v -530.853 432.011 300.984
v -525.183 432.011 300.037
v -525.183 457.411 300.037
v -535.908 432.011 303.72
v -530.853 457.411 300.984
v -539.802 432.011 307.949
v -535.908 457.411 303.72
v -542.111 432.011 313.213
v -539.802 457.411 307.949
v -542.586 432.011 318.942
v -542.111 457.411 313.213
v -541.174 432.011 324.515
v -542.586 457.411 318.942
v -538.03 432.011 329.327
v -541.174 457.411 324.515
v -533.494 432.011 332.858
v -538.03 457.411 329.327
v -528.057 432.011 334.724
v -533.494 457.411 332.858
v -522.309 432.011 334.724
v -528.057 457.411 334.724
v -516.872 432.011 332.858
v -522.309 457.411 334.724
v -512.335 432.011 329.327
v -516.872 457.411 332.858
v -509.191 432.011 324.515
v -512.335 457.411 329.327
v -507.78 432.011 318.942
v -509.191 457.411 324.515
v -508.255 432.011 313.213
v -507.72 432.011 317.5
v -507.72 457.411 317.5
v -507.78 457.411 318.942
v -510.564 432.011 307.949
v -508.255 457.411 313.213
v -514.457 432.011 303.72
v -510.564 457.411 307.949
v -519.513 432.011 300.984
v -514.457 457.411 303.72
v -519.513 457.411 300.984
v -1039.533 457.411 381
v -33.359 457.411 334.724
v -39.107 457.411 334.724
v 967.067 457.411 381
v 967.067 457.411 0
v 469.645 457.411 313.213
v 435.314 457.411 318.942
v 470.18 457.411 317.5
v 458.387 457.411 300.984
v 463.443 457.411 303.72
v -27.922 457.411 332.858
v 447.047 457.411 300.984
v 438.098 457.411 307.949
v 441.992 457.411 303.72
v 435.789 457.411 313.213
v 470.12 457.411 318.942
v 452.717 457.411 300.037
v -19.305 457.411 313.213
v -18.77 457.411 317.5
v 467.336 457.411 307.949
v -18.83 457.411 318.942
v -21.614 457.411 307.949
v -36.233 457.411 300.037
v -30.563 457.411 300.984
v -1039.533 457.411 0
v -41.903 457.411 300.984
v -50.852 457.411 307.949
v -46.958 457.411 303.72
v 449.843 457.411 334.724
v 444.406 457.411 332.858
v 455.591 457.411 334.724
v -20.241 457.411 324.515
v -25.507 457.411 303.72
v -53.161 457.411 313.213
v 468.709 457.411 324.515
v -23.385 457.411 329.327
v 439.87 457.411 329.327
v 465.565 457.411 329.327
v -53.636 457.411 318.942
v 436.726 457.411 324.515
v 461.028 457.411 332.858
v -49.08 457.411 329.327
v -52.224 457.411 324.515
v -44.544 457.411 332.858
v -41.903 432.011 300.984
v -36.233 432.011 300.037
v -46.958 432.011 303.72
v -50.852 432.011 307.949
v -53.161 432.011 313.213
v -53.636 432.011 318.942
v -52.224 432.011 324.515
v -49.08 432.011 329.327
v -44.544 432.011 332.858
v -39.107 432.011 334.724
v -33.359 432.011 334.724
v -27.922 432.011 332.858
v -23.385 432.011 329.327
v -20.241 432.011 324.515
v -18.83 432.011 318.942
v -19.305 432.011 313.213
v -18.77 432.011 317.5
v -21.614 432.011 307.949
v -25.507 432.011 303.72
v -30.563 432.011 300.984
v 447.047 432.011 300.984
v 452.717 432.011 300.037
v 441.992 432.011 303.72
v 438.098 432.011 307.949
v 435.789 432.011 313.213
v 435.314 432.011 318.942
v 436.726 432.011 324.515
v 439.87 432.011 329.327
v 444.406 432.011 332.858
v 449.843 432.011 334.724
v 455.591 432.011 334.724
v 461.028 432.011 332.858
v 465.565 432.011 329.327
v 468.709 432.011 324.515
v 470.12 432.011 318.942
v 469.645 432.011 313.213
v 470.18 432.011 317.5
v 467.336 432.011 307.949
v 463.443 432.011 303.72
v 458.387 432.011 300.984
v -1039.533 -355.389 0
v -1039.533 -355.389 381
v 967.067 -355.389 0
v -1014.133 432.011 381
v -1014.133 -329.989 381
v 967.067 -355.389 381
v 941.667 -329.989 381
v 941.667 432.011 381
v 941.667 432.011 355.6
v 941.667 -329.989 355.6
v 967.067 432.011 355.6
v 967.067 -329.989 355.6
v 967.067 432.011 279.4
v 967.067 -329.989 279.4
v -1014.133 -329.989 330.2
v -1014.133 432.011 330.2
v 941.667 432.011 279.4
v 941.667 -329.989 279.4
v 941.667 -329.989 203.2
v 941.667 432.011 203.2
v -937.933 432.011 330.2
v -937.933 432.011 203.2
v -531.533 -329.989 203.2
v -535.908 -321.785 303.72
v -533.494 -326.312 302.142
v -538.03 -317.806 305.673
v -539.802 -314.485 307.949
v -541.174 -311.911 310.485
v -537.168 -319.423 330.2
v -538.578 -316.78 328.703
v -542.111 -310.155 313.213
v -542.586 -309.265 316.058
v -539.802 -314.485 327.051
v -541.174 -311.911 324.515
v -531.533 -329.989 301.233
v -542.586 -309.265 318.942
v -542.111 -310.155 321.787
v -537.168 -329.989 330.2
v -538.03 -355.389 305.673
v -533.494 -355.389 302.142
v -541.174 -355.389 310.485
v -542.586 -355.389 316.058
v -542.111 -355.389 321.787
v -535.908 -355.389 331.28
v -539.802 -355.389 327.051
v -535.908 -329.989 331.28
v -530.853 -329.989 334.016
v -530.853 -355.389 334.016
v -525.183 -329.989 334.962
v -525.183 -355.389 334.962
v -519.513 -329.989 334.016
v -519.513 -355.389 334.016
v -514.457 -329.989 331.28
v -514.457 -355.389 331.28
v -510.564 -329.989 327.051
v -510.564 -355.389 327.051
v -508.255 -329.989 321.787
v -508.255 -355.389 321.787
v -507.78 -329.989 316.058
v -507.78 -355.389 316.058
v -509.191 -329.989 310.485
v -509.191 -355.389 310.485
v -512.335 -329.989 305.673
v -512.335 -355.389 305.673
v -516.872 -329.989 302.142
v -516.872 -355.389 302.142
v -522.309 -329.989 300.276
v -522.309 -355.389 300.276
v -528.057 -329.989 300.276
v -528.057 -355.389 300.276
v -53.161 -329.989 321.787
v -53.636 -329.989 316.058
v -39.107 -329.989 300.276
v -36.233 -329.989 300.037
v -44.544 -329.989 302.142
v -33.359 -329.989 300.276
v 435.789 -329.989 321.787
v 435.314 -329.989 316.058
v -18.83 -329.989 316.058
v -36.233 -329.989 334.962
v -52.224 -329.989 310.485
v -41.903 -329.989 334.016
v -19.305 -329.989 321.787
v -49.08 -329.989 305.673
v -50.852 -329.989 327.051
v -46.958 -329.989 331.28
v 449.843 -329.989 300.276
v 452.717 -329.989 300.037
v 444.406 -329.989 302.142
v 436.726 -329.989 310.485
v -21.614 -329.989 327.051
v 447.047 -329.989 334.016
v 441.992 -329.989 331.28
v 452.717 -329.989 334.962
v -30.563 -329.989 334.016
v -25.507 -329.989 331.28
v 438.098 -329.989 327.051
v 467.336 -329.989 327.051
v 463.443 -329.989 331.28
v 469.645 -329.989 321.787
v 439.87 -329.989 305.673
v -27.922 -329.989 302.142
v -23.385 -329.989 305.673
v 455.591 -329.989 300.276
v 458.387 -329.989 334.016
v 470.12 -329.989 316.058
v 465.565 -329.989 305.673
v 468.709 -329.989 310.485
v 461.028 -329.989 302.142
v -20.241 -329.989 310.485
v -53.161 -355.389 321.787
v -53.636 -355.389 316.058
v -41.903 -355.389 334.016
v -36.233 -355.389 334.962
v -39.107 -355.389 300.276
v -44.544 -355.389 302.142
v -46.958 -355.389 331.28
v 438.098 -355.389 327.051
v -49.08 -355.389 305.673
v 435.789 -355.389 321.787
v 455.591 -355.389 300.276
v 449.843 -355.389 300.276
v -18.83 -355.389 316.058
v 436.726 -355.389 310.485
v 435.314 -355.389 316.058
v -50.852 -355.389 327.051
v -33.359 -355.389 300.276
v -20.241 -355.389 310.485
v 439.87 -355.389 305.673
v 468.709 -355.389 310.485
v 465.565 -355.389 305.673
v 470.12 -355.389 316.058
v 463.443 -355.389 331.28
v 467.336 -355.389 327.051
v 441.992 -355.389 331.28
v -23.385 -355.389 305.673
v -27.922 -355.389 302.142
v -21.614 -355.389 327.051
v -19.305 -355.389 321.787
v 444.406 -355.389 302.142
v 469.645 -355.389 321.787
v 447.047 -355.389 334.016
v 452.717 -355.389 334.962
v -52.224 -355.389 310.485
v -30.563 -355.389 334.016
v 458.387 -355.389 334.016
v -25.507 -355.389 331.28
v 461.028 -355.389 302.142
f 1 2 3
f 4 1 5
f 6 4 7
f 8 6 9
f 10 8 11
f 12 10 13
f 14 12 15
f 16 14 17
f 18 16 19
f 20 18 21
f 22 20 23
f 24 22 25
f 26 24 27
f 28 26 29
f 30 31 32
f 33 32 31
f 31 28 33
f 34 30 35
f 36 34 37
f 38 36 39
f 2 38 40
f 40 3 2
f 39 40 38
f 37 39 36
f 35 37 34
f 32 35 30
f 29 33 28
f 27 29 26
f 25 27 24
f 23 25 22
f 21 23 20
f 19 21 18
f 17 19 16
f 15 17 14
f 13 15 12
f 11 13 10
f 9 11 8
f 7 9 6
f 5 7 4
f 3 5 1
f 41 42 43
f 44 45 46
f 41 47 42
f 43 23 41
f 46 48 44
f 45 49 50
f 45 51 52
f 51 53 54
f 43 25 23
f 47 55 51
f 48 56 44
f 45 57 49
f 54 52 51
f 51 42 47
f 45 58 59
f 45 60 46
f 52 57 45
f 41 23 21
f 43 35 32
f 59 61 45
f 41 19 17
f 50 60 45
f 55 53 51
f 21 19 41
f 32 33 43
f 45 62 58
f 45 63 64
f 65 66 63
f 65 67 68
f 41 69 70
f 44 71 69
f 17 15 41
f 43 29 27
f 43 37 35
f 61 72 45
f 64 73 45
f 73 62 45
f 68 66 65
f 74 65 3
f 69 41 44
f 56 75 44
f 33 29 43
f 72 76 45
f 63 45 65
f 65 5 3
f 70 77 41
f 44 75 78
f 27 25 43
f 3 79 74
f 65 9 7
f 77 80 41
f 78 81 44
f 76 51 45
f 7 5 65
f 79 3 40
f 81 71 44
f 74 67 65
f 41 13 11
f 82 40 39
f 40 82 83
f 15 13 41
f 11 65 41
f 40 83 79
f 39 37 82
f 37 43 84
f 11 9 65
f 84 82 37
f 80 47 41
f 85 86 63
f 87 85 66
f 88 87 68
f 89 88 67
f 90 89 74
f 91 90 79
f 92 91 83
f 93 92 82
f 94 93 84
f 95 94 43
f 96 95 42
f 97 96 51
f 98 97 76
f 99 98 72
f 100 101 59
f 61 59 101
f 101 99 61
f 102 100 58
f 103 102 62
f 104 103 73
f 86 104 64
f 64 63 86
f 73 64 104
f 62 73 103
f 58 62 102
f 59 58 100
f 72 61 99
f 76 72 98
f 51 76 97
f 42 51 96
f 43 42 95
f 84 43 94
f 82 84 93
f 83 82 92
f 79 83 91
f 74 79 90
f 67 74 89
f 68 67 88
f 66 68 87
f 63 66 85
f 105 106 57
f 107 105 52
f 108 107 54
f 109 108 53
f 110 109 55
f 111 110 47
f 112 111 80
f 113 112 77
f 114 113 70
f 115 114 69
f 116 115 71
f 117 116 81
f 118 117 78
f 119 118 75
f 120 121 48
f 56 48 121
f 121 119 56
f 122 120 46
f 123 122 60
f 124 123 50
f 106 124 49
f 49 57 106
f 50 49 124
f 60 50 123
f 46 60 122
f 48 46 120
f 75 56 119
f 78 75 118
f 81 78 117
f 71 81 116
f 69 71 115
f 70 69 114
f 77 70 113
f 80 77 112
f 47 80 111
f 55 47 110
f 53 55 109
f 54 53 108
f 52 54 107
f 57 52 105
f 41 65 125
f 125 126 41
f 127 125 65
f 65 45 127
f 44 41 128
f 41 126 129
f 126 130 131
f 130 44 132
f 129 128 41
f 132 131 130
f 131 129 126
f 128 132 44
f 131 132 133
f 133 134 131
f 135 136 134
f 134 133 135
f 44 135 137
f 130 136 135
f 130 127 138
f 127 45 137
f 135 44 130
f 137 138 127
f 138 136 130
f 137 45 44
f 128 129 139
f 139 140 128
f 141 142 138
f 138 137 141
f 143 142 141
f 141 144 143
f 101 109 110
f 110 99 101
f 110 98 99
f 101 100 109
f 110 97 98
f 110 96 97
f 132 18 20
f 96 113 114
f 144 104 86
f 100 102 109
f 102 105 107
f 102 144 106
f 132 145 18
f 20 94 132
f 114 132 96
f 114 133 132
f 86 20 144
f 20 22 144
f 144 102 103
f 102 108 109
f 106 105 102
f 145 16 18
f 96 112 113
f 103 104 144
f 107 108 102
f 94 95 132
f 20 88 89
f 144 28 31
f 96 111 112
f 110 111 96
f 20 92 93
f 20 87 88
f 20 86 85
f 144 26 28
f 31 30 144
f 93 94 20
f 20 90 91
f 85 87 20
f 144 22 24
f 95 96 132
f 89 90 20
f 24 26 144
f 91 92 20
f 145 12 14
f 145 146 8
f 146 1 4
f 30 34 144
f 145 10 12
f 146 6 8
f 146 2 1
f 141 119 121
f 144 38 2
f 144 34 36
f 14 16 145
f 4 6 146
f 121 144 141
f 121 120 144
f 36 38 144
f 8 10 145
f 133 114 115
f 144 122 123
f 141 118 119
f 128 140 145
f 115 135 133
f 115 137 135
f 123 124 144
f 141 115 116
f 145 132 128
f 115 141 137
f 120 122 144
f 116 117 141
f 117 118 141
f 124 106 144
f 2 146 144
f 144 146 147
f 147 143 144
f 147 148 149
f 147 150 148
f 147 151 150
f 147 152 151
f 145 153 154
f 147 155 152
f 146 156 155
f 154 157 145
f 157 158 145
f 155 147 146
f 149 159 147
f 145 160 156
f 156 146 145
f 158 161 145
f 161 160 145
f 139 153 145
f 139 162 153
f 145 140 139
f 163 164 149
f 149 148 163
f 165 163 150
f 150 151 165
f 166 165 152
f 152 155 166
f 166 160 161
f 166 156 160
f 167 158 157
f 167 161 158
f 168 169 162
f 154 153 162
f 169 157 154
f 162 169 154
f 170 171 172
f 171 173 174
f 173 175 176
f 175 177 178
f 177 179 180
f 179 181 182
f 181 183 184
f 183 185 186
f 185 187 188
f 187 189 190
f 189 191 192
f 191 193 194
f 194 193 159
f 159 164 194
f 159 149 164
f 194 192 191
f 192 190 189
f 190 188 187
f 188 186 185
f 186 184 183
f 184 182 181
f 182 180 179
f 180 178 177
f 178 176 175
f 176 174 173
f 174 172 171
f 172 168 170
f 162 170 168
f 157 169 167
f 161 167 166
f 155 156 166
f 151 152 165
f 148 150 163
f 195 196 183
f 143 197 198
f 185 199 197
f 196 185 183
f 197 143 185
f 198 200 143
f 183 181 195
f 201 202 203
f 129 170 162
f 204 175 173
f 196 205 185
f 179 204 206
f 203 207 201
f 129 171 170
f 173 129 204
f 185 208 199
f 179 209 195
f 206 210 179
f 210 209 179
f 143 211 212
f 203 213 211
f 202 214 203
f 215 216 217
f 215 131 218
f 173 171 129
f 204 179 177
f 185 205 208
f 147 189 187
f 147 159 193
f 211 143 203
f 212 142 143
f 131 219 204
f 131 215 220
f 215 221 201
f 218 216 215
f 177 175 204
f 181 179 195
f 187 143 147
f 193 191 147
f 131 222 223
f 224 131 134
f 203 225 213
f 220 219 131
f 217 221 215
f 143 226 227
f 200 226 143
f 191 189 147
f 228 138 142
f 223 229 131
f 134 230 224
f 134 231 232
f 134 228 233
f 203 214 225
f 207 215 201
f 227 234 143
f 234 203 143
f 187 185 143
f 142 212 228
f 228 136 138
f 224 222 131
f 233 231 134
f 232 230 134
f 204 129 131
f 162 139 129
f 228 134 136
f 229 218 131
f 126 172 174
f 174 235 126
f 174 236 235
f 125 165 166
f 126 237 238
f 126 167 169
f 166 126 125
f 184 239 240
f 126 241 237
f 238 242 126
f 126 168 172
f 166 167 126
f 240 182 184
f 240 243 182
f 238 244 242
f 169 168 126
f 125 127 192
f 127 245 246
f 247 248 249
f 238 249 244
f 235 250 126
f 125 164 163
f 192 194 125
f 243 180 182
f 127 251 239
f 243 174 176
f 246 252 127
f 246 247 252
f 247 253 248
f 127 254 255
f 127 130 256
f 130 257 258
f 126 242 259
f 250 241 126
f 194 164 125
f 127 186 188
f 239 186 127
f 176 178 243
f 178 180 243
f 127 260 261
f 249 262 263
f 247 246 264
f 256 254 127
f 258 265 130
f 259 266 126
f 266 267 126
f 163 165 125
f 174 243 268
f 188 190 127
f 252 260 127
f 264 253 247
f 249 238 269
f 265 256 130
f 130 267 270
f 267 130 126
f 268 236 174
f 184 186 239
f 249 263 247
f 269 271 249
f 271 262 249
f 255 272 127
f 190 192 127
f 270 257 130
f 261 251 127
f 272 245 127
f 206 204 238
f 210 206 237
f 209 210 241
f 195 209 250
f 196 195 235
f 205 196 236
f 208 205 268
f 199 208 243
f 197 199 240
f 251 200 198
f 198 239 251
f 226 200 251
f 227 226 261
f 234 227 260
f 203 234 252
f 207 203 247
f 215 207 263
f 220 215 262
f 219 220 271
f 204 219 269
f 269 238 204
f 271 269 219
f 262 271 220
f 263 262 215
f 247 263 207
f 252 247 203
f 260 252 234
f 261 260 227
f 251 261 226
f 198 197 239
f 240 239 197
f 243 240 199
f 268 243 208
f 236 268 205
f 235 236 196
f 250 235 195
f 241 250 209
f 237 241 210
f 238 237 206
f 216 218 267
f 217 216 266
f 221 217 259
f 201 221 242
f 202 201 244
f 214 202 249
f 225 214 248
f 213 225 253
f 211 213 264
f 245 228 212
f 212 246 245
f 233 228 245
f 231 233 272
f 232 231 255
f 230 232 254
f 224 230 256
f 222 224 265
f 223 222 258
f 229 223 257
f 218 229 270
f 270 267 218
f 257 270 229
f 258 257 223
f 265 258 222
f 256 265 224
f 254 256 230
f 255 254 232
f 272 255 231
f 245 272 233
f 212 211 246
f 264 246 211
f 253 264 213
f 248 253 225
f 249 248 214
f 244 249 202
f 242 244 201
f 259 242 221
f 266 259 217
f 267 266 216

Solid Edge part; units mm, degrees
sketch "Sketch1" plane through (0, 0, 0) normal (0, 0, 1) x (1, 0, 0)
  line L0 (-1039.5328, -355.3891) -> (967.0672, -355.3891)
  line L1 (967.0672, -355.3891) -> (967.0672, 457.4109)
  line L2 (967.0672, 457.4109) -> (-1039.5328, 457.4109)
  line L3 (-1039.5328, 457.4109) -> (-1039.5328, -355.3891)
extrude "Protrusion1" add sketch "Sketch1" along normal blind 381
sketch "Sketch2" plane through (-61.6328, 25.6109, 381) normal (0, 0, 1) x (1, 0, 0)
  line L0 (-469.9, -355.6) -> (-876.3, 406.4)
  line L1 (1003.3, 406.4) -> (-876.3, 406.4)
  line L2 (1003.3, -355.6) -> (1003.3, 406.4)
  line L3 (-469.9, -355.6) -> (1003.3, -355.6)
extrude "ExtrudedCutout_1" cut sketch "Sketch2" along normal mid plane 355.6
sketch "Sketch3" plane through (-36.2328, 51.0109, 381) normal (0, 0, 1) x (1, 0, 0)
  line L0 (-495.3, -381) -> (-901.7, 381)
  line L1 (-901.7, 381) -> (-977.9, 381)
  line L2 (-977.9, 381) -> (-977.9, -381)
  line L3 (-977.9, -381) -> (-495.3, -381)
extrude "ExtrudedCutout_2" cut sketch "Sketch3" along normal mid plane 101.6
sketch "Sketch4" plane through (941.6672, 51.0109, 292.1) normal (-1, 0, 0) x (0, -1, 0)
  line L0 (-381, 63.5) -> (381, 63.5)
  line L1 (381, 63.5) -> (381, -12.7)
  line L2 (381, -12.7) -> (-381, -12.7)
  line L3 (-381, -12.7) -> (-381, 63.5)
extrude "ExtrudedCutout_3" cut sketch "Sketch4" along normal mid plane 909.4412
sketch "Sketch5" plane through (-23.5328, 432.0109, 292.1) normal (0, -1, 0) x (1, 0, 0)
  circle A0 centre (-501.65, 25.4) radius 17.4625
  circle A1 centre (-12.7, 25.4) radius 17.4625
  circle A2 centre (476.25, 25.4) radius 17.4625
extrude "ExtrudedCutout_5" cut sketch "Sketch5" along normal blind 2228.9962 and the other way blind 429.4298
properties material "Wood, balsa"
